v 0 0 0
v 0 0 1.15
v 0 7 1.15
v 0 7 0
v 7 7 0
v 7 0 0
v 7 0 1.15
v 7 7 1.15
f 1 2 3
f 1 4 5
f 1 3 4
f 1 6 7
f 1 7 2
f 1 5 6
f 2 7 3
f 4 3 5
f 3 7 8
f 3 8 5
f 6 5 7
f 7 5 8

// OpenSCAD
/* Warning, this is a very basic generator with a lot of approximation 
input data : [TQFN, KUX, 7x7x1.15mm, 48, , A, C04-00466A]
generated by com.zoubworld.electronics.cad.model3d.Basic
Date : Sun Feb 15 10:50:48 CET 2026
*/

//body
color("black")
translate([0,0,0])
cube([7.0,7.0,1.15], center=false);
